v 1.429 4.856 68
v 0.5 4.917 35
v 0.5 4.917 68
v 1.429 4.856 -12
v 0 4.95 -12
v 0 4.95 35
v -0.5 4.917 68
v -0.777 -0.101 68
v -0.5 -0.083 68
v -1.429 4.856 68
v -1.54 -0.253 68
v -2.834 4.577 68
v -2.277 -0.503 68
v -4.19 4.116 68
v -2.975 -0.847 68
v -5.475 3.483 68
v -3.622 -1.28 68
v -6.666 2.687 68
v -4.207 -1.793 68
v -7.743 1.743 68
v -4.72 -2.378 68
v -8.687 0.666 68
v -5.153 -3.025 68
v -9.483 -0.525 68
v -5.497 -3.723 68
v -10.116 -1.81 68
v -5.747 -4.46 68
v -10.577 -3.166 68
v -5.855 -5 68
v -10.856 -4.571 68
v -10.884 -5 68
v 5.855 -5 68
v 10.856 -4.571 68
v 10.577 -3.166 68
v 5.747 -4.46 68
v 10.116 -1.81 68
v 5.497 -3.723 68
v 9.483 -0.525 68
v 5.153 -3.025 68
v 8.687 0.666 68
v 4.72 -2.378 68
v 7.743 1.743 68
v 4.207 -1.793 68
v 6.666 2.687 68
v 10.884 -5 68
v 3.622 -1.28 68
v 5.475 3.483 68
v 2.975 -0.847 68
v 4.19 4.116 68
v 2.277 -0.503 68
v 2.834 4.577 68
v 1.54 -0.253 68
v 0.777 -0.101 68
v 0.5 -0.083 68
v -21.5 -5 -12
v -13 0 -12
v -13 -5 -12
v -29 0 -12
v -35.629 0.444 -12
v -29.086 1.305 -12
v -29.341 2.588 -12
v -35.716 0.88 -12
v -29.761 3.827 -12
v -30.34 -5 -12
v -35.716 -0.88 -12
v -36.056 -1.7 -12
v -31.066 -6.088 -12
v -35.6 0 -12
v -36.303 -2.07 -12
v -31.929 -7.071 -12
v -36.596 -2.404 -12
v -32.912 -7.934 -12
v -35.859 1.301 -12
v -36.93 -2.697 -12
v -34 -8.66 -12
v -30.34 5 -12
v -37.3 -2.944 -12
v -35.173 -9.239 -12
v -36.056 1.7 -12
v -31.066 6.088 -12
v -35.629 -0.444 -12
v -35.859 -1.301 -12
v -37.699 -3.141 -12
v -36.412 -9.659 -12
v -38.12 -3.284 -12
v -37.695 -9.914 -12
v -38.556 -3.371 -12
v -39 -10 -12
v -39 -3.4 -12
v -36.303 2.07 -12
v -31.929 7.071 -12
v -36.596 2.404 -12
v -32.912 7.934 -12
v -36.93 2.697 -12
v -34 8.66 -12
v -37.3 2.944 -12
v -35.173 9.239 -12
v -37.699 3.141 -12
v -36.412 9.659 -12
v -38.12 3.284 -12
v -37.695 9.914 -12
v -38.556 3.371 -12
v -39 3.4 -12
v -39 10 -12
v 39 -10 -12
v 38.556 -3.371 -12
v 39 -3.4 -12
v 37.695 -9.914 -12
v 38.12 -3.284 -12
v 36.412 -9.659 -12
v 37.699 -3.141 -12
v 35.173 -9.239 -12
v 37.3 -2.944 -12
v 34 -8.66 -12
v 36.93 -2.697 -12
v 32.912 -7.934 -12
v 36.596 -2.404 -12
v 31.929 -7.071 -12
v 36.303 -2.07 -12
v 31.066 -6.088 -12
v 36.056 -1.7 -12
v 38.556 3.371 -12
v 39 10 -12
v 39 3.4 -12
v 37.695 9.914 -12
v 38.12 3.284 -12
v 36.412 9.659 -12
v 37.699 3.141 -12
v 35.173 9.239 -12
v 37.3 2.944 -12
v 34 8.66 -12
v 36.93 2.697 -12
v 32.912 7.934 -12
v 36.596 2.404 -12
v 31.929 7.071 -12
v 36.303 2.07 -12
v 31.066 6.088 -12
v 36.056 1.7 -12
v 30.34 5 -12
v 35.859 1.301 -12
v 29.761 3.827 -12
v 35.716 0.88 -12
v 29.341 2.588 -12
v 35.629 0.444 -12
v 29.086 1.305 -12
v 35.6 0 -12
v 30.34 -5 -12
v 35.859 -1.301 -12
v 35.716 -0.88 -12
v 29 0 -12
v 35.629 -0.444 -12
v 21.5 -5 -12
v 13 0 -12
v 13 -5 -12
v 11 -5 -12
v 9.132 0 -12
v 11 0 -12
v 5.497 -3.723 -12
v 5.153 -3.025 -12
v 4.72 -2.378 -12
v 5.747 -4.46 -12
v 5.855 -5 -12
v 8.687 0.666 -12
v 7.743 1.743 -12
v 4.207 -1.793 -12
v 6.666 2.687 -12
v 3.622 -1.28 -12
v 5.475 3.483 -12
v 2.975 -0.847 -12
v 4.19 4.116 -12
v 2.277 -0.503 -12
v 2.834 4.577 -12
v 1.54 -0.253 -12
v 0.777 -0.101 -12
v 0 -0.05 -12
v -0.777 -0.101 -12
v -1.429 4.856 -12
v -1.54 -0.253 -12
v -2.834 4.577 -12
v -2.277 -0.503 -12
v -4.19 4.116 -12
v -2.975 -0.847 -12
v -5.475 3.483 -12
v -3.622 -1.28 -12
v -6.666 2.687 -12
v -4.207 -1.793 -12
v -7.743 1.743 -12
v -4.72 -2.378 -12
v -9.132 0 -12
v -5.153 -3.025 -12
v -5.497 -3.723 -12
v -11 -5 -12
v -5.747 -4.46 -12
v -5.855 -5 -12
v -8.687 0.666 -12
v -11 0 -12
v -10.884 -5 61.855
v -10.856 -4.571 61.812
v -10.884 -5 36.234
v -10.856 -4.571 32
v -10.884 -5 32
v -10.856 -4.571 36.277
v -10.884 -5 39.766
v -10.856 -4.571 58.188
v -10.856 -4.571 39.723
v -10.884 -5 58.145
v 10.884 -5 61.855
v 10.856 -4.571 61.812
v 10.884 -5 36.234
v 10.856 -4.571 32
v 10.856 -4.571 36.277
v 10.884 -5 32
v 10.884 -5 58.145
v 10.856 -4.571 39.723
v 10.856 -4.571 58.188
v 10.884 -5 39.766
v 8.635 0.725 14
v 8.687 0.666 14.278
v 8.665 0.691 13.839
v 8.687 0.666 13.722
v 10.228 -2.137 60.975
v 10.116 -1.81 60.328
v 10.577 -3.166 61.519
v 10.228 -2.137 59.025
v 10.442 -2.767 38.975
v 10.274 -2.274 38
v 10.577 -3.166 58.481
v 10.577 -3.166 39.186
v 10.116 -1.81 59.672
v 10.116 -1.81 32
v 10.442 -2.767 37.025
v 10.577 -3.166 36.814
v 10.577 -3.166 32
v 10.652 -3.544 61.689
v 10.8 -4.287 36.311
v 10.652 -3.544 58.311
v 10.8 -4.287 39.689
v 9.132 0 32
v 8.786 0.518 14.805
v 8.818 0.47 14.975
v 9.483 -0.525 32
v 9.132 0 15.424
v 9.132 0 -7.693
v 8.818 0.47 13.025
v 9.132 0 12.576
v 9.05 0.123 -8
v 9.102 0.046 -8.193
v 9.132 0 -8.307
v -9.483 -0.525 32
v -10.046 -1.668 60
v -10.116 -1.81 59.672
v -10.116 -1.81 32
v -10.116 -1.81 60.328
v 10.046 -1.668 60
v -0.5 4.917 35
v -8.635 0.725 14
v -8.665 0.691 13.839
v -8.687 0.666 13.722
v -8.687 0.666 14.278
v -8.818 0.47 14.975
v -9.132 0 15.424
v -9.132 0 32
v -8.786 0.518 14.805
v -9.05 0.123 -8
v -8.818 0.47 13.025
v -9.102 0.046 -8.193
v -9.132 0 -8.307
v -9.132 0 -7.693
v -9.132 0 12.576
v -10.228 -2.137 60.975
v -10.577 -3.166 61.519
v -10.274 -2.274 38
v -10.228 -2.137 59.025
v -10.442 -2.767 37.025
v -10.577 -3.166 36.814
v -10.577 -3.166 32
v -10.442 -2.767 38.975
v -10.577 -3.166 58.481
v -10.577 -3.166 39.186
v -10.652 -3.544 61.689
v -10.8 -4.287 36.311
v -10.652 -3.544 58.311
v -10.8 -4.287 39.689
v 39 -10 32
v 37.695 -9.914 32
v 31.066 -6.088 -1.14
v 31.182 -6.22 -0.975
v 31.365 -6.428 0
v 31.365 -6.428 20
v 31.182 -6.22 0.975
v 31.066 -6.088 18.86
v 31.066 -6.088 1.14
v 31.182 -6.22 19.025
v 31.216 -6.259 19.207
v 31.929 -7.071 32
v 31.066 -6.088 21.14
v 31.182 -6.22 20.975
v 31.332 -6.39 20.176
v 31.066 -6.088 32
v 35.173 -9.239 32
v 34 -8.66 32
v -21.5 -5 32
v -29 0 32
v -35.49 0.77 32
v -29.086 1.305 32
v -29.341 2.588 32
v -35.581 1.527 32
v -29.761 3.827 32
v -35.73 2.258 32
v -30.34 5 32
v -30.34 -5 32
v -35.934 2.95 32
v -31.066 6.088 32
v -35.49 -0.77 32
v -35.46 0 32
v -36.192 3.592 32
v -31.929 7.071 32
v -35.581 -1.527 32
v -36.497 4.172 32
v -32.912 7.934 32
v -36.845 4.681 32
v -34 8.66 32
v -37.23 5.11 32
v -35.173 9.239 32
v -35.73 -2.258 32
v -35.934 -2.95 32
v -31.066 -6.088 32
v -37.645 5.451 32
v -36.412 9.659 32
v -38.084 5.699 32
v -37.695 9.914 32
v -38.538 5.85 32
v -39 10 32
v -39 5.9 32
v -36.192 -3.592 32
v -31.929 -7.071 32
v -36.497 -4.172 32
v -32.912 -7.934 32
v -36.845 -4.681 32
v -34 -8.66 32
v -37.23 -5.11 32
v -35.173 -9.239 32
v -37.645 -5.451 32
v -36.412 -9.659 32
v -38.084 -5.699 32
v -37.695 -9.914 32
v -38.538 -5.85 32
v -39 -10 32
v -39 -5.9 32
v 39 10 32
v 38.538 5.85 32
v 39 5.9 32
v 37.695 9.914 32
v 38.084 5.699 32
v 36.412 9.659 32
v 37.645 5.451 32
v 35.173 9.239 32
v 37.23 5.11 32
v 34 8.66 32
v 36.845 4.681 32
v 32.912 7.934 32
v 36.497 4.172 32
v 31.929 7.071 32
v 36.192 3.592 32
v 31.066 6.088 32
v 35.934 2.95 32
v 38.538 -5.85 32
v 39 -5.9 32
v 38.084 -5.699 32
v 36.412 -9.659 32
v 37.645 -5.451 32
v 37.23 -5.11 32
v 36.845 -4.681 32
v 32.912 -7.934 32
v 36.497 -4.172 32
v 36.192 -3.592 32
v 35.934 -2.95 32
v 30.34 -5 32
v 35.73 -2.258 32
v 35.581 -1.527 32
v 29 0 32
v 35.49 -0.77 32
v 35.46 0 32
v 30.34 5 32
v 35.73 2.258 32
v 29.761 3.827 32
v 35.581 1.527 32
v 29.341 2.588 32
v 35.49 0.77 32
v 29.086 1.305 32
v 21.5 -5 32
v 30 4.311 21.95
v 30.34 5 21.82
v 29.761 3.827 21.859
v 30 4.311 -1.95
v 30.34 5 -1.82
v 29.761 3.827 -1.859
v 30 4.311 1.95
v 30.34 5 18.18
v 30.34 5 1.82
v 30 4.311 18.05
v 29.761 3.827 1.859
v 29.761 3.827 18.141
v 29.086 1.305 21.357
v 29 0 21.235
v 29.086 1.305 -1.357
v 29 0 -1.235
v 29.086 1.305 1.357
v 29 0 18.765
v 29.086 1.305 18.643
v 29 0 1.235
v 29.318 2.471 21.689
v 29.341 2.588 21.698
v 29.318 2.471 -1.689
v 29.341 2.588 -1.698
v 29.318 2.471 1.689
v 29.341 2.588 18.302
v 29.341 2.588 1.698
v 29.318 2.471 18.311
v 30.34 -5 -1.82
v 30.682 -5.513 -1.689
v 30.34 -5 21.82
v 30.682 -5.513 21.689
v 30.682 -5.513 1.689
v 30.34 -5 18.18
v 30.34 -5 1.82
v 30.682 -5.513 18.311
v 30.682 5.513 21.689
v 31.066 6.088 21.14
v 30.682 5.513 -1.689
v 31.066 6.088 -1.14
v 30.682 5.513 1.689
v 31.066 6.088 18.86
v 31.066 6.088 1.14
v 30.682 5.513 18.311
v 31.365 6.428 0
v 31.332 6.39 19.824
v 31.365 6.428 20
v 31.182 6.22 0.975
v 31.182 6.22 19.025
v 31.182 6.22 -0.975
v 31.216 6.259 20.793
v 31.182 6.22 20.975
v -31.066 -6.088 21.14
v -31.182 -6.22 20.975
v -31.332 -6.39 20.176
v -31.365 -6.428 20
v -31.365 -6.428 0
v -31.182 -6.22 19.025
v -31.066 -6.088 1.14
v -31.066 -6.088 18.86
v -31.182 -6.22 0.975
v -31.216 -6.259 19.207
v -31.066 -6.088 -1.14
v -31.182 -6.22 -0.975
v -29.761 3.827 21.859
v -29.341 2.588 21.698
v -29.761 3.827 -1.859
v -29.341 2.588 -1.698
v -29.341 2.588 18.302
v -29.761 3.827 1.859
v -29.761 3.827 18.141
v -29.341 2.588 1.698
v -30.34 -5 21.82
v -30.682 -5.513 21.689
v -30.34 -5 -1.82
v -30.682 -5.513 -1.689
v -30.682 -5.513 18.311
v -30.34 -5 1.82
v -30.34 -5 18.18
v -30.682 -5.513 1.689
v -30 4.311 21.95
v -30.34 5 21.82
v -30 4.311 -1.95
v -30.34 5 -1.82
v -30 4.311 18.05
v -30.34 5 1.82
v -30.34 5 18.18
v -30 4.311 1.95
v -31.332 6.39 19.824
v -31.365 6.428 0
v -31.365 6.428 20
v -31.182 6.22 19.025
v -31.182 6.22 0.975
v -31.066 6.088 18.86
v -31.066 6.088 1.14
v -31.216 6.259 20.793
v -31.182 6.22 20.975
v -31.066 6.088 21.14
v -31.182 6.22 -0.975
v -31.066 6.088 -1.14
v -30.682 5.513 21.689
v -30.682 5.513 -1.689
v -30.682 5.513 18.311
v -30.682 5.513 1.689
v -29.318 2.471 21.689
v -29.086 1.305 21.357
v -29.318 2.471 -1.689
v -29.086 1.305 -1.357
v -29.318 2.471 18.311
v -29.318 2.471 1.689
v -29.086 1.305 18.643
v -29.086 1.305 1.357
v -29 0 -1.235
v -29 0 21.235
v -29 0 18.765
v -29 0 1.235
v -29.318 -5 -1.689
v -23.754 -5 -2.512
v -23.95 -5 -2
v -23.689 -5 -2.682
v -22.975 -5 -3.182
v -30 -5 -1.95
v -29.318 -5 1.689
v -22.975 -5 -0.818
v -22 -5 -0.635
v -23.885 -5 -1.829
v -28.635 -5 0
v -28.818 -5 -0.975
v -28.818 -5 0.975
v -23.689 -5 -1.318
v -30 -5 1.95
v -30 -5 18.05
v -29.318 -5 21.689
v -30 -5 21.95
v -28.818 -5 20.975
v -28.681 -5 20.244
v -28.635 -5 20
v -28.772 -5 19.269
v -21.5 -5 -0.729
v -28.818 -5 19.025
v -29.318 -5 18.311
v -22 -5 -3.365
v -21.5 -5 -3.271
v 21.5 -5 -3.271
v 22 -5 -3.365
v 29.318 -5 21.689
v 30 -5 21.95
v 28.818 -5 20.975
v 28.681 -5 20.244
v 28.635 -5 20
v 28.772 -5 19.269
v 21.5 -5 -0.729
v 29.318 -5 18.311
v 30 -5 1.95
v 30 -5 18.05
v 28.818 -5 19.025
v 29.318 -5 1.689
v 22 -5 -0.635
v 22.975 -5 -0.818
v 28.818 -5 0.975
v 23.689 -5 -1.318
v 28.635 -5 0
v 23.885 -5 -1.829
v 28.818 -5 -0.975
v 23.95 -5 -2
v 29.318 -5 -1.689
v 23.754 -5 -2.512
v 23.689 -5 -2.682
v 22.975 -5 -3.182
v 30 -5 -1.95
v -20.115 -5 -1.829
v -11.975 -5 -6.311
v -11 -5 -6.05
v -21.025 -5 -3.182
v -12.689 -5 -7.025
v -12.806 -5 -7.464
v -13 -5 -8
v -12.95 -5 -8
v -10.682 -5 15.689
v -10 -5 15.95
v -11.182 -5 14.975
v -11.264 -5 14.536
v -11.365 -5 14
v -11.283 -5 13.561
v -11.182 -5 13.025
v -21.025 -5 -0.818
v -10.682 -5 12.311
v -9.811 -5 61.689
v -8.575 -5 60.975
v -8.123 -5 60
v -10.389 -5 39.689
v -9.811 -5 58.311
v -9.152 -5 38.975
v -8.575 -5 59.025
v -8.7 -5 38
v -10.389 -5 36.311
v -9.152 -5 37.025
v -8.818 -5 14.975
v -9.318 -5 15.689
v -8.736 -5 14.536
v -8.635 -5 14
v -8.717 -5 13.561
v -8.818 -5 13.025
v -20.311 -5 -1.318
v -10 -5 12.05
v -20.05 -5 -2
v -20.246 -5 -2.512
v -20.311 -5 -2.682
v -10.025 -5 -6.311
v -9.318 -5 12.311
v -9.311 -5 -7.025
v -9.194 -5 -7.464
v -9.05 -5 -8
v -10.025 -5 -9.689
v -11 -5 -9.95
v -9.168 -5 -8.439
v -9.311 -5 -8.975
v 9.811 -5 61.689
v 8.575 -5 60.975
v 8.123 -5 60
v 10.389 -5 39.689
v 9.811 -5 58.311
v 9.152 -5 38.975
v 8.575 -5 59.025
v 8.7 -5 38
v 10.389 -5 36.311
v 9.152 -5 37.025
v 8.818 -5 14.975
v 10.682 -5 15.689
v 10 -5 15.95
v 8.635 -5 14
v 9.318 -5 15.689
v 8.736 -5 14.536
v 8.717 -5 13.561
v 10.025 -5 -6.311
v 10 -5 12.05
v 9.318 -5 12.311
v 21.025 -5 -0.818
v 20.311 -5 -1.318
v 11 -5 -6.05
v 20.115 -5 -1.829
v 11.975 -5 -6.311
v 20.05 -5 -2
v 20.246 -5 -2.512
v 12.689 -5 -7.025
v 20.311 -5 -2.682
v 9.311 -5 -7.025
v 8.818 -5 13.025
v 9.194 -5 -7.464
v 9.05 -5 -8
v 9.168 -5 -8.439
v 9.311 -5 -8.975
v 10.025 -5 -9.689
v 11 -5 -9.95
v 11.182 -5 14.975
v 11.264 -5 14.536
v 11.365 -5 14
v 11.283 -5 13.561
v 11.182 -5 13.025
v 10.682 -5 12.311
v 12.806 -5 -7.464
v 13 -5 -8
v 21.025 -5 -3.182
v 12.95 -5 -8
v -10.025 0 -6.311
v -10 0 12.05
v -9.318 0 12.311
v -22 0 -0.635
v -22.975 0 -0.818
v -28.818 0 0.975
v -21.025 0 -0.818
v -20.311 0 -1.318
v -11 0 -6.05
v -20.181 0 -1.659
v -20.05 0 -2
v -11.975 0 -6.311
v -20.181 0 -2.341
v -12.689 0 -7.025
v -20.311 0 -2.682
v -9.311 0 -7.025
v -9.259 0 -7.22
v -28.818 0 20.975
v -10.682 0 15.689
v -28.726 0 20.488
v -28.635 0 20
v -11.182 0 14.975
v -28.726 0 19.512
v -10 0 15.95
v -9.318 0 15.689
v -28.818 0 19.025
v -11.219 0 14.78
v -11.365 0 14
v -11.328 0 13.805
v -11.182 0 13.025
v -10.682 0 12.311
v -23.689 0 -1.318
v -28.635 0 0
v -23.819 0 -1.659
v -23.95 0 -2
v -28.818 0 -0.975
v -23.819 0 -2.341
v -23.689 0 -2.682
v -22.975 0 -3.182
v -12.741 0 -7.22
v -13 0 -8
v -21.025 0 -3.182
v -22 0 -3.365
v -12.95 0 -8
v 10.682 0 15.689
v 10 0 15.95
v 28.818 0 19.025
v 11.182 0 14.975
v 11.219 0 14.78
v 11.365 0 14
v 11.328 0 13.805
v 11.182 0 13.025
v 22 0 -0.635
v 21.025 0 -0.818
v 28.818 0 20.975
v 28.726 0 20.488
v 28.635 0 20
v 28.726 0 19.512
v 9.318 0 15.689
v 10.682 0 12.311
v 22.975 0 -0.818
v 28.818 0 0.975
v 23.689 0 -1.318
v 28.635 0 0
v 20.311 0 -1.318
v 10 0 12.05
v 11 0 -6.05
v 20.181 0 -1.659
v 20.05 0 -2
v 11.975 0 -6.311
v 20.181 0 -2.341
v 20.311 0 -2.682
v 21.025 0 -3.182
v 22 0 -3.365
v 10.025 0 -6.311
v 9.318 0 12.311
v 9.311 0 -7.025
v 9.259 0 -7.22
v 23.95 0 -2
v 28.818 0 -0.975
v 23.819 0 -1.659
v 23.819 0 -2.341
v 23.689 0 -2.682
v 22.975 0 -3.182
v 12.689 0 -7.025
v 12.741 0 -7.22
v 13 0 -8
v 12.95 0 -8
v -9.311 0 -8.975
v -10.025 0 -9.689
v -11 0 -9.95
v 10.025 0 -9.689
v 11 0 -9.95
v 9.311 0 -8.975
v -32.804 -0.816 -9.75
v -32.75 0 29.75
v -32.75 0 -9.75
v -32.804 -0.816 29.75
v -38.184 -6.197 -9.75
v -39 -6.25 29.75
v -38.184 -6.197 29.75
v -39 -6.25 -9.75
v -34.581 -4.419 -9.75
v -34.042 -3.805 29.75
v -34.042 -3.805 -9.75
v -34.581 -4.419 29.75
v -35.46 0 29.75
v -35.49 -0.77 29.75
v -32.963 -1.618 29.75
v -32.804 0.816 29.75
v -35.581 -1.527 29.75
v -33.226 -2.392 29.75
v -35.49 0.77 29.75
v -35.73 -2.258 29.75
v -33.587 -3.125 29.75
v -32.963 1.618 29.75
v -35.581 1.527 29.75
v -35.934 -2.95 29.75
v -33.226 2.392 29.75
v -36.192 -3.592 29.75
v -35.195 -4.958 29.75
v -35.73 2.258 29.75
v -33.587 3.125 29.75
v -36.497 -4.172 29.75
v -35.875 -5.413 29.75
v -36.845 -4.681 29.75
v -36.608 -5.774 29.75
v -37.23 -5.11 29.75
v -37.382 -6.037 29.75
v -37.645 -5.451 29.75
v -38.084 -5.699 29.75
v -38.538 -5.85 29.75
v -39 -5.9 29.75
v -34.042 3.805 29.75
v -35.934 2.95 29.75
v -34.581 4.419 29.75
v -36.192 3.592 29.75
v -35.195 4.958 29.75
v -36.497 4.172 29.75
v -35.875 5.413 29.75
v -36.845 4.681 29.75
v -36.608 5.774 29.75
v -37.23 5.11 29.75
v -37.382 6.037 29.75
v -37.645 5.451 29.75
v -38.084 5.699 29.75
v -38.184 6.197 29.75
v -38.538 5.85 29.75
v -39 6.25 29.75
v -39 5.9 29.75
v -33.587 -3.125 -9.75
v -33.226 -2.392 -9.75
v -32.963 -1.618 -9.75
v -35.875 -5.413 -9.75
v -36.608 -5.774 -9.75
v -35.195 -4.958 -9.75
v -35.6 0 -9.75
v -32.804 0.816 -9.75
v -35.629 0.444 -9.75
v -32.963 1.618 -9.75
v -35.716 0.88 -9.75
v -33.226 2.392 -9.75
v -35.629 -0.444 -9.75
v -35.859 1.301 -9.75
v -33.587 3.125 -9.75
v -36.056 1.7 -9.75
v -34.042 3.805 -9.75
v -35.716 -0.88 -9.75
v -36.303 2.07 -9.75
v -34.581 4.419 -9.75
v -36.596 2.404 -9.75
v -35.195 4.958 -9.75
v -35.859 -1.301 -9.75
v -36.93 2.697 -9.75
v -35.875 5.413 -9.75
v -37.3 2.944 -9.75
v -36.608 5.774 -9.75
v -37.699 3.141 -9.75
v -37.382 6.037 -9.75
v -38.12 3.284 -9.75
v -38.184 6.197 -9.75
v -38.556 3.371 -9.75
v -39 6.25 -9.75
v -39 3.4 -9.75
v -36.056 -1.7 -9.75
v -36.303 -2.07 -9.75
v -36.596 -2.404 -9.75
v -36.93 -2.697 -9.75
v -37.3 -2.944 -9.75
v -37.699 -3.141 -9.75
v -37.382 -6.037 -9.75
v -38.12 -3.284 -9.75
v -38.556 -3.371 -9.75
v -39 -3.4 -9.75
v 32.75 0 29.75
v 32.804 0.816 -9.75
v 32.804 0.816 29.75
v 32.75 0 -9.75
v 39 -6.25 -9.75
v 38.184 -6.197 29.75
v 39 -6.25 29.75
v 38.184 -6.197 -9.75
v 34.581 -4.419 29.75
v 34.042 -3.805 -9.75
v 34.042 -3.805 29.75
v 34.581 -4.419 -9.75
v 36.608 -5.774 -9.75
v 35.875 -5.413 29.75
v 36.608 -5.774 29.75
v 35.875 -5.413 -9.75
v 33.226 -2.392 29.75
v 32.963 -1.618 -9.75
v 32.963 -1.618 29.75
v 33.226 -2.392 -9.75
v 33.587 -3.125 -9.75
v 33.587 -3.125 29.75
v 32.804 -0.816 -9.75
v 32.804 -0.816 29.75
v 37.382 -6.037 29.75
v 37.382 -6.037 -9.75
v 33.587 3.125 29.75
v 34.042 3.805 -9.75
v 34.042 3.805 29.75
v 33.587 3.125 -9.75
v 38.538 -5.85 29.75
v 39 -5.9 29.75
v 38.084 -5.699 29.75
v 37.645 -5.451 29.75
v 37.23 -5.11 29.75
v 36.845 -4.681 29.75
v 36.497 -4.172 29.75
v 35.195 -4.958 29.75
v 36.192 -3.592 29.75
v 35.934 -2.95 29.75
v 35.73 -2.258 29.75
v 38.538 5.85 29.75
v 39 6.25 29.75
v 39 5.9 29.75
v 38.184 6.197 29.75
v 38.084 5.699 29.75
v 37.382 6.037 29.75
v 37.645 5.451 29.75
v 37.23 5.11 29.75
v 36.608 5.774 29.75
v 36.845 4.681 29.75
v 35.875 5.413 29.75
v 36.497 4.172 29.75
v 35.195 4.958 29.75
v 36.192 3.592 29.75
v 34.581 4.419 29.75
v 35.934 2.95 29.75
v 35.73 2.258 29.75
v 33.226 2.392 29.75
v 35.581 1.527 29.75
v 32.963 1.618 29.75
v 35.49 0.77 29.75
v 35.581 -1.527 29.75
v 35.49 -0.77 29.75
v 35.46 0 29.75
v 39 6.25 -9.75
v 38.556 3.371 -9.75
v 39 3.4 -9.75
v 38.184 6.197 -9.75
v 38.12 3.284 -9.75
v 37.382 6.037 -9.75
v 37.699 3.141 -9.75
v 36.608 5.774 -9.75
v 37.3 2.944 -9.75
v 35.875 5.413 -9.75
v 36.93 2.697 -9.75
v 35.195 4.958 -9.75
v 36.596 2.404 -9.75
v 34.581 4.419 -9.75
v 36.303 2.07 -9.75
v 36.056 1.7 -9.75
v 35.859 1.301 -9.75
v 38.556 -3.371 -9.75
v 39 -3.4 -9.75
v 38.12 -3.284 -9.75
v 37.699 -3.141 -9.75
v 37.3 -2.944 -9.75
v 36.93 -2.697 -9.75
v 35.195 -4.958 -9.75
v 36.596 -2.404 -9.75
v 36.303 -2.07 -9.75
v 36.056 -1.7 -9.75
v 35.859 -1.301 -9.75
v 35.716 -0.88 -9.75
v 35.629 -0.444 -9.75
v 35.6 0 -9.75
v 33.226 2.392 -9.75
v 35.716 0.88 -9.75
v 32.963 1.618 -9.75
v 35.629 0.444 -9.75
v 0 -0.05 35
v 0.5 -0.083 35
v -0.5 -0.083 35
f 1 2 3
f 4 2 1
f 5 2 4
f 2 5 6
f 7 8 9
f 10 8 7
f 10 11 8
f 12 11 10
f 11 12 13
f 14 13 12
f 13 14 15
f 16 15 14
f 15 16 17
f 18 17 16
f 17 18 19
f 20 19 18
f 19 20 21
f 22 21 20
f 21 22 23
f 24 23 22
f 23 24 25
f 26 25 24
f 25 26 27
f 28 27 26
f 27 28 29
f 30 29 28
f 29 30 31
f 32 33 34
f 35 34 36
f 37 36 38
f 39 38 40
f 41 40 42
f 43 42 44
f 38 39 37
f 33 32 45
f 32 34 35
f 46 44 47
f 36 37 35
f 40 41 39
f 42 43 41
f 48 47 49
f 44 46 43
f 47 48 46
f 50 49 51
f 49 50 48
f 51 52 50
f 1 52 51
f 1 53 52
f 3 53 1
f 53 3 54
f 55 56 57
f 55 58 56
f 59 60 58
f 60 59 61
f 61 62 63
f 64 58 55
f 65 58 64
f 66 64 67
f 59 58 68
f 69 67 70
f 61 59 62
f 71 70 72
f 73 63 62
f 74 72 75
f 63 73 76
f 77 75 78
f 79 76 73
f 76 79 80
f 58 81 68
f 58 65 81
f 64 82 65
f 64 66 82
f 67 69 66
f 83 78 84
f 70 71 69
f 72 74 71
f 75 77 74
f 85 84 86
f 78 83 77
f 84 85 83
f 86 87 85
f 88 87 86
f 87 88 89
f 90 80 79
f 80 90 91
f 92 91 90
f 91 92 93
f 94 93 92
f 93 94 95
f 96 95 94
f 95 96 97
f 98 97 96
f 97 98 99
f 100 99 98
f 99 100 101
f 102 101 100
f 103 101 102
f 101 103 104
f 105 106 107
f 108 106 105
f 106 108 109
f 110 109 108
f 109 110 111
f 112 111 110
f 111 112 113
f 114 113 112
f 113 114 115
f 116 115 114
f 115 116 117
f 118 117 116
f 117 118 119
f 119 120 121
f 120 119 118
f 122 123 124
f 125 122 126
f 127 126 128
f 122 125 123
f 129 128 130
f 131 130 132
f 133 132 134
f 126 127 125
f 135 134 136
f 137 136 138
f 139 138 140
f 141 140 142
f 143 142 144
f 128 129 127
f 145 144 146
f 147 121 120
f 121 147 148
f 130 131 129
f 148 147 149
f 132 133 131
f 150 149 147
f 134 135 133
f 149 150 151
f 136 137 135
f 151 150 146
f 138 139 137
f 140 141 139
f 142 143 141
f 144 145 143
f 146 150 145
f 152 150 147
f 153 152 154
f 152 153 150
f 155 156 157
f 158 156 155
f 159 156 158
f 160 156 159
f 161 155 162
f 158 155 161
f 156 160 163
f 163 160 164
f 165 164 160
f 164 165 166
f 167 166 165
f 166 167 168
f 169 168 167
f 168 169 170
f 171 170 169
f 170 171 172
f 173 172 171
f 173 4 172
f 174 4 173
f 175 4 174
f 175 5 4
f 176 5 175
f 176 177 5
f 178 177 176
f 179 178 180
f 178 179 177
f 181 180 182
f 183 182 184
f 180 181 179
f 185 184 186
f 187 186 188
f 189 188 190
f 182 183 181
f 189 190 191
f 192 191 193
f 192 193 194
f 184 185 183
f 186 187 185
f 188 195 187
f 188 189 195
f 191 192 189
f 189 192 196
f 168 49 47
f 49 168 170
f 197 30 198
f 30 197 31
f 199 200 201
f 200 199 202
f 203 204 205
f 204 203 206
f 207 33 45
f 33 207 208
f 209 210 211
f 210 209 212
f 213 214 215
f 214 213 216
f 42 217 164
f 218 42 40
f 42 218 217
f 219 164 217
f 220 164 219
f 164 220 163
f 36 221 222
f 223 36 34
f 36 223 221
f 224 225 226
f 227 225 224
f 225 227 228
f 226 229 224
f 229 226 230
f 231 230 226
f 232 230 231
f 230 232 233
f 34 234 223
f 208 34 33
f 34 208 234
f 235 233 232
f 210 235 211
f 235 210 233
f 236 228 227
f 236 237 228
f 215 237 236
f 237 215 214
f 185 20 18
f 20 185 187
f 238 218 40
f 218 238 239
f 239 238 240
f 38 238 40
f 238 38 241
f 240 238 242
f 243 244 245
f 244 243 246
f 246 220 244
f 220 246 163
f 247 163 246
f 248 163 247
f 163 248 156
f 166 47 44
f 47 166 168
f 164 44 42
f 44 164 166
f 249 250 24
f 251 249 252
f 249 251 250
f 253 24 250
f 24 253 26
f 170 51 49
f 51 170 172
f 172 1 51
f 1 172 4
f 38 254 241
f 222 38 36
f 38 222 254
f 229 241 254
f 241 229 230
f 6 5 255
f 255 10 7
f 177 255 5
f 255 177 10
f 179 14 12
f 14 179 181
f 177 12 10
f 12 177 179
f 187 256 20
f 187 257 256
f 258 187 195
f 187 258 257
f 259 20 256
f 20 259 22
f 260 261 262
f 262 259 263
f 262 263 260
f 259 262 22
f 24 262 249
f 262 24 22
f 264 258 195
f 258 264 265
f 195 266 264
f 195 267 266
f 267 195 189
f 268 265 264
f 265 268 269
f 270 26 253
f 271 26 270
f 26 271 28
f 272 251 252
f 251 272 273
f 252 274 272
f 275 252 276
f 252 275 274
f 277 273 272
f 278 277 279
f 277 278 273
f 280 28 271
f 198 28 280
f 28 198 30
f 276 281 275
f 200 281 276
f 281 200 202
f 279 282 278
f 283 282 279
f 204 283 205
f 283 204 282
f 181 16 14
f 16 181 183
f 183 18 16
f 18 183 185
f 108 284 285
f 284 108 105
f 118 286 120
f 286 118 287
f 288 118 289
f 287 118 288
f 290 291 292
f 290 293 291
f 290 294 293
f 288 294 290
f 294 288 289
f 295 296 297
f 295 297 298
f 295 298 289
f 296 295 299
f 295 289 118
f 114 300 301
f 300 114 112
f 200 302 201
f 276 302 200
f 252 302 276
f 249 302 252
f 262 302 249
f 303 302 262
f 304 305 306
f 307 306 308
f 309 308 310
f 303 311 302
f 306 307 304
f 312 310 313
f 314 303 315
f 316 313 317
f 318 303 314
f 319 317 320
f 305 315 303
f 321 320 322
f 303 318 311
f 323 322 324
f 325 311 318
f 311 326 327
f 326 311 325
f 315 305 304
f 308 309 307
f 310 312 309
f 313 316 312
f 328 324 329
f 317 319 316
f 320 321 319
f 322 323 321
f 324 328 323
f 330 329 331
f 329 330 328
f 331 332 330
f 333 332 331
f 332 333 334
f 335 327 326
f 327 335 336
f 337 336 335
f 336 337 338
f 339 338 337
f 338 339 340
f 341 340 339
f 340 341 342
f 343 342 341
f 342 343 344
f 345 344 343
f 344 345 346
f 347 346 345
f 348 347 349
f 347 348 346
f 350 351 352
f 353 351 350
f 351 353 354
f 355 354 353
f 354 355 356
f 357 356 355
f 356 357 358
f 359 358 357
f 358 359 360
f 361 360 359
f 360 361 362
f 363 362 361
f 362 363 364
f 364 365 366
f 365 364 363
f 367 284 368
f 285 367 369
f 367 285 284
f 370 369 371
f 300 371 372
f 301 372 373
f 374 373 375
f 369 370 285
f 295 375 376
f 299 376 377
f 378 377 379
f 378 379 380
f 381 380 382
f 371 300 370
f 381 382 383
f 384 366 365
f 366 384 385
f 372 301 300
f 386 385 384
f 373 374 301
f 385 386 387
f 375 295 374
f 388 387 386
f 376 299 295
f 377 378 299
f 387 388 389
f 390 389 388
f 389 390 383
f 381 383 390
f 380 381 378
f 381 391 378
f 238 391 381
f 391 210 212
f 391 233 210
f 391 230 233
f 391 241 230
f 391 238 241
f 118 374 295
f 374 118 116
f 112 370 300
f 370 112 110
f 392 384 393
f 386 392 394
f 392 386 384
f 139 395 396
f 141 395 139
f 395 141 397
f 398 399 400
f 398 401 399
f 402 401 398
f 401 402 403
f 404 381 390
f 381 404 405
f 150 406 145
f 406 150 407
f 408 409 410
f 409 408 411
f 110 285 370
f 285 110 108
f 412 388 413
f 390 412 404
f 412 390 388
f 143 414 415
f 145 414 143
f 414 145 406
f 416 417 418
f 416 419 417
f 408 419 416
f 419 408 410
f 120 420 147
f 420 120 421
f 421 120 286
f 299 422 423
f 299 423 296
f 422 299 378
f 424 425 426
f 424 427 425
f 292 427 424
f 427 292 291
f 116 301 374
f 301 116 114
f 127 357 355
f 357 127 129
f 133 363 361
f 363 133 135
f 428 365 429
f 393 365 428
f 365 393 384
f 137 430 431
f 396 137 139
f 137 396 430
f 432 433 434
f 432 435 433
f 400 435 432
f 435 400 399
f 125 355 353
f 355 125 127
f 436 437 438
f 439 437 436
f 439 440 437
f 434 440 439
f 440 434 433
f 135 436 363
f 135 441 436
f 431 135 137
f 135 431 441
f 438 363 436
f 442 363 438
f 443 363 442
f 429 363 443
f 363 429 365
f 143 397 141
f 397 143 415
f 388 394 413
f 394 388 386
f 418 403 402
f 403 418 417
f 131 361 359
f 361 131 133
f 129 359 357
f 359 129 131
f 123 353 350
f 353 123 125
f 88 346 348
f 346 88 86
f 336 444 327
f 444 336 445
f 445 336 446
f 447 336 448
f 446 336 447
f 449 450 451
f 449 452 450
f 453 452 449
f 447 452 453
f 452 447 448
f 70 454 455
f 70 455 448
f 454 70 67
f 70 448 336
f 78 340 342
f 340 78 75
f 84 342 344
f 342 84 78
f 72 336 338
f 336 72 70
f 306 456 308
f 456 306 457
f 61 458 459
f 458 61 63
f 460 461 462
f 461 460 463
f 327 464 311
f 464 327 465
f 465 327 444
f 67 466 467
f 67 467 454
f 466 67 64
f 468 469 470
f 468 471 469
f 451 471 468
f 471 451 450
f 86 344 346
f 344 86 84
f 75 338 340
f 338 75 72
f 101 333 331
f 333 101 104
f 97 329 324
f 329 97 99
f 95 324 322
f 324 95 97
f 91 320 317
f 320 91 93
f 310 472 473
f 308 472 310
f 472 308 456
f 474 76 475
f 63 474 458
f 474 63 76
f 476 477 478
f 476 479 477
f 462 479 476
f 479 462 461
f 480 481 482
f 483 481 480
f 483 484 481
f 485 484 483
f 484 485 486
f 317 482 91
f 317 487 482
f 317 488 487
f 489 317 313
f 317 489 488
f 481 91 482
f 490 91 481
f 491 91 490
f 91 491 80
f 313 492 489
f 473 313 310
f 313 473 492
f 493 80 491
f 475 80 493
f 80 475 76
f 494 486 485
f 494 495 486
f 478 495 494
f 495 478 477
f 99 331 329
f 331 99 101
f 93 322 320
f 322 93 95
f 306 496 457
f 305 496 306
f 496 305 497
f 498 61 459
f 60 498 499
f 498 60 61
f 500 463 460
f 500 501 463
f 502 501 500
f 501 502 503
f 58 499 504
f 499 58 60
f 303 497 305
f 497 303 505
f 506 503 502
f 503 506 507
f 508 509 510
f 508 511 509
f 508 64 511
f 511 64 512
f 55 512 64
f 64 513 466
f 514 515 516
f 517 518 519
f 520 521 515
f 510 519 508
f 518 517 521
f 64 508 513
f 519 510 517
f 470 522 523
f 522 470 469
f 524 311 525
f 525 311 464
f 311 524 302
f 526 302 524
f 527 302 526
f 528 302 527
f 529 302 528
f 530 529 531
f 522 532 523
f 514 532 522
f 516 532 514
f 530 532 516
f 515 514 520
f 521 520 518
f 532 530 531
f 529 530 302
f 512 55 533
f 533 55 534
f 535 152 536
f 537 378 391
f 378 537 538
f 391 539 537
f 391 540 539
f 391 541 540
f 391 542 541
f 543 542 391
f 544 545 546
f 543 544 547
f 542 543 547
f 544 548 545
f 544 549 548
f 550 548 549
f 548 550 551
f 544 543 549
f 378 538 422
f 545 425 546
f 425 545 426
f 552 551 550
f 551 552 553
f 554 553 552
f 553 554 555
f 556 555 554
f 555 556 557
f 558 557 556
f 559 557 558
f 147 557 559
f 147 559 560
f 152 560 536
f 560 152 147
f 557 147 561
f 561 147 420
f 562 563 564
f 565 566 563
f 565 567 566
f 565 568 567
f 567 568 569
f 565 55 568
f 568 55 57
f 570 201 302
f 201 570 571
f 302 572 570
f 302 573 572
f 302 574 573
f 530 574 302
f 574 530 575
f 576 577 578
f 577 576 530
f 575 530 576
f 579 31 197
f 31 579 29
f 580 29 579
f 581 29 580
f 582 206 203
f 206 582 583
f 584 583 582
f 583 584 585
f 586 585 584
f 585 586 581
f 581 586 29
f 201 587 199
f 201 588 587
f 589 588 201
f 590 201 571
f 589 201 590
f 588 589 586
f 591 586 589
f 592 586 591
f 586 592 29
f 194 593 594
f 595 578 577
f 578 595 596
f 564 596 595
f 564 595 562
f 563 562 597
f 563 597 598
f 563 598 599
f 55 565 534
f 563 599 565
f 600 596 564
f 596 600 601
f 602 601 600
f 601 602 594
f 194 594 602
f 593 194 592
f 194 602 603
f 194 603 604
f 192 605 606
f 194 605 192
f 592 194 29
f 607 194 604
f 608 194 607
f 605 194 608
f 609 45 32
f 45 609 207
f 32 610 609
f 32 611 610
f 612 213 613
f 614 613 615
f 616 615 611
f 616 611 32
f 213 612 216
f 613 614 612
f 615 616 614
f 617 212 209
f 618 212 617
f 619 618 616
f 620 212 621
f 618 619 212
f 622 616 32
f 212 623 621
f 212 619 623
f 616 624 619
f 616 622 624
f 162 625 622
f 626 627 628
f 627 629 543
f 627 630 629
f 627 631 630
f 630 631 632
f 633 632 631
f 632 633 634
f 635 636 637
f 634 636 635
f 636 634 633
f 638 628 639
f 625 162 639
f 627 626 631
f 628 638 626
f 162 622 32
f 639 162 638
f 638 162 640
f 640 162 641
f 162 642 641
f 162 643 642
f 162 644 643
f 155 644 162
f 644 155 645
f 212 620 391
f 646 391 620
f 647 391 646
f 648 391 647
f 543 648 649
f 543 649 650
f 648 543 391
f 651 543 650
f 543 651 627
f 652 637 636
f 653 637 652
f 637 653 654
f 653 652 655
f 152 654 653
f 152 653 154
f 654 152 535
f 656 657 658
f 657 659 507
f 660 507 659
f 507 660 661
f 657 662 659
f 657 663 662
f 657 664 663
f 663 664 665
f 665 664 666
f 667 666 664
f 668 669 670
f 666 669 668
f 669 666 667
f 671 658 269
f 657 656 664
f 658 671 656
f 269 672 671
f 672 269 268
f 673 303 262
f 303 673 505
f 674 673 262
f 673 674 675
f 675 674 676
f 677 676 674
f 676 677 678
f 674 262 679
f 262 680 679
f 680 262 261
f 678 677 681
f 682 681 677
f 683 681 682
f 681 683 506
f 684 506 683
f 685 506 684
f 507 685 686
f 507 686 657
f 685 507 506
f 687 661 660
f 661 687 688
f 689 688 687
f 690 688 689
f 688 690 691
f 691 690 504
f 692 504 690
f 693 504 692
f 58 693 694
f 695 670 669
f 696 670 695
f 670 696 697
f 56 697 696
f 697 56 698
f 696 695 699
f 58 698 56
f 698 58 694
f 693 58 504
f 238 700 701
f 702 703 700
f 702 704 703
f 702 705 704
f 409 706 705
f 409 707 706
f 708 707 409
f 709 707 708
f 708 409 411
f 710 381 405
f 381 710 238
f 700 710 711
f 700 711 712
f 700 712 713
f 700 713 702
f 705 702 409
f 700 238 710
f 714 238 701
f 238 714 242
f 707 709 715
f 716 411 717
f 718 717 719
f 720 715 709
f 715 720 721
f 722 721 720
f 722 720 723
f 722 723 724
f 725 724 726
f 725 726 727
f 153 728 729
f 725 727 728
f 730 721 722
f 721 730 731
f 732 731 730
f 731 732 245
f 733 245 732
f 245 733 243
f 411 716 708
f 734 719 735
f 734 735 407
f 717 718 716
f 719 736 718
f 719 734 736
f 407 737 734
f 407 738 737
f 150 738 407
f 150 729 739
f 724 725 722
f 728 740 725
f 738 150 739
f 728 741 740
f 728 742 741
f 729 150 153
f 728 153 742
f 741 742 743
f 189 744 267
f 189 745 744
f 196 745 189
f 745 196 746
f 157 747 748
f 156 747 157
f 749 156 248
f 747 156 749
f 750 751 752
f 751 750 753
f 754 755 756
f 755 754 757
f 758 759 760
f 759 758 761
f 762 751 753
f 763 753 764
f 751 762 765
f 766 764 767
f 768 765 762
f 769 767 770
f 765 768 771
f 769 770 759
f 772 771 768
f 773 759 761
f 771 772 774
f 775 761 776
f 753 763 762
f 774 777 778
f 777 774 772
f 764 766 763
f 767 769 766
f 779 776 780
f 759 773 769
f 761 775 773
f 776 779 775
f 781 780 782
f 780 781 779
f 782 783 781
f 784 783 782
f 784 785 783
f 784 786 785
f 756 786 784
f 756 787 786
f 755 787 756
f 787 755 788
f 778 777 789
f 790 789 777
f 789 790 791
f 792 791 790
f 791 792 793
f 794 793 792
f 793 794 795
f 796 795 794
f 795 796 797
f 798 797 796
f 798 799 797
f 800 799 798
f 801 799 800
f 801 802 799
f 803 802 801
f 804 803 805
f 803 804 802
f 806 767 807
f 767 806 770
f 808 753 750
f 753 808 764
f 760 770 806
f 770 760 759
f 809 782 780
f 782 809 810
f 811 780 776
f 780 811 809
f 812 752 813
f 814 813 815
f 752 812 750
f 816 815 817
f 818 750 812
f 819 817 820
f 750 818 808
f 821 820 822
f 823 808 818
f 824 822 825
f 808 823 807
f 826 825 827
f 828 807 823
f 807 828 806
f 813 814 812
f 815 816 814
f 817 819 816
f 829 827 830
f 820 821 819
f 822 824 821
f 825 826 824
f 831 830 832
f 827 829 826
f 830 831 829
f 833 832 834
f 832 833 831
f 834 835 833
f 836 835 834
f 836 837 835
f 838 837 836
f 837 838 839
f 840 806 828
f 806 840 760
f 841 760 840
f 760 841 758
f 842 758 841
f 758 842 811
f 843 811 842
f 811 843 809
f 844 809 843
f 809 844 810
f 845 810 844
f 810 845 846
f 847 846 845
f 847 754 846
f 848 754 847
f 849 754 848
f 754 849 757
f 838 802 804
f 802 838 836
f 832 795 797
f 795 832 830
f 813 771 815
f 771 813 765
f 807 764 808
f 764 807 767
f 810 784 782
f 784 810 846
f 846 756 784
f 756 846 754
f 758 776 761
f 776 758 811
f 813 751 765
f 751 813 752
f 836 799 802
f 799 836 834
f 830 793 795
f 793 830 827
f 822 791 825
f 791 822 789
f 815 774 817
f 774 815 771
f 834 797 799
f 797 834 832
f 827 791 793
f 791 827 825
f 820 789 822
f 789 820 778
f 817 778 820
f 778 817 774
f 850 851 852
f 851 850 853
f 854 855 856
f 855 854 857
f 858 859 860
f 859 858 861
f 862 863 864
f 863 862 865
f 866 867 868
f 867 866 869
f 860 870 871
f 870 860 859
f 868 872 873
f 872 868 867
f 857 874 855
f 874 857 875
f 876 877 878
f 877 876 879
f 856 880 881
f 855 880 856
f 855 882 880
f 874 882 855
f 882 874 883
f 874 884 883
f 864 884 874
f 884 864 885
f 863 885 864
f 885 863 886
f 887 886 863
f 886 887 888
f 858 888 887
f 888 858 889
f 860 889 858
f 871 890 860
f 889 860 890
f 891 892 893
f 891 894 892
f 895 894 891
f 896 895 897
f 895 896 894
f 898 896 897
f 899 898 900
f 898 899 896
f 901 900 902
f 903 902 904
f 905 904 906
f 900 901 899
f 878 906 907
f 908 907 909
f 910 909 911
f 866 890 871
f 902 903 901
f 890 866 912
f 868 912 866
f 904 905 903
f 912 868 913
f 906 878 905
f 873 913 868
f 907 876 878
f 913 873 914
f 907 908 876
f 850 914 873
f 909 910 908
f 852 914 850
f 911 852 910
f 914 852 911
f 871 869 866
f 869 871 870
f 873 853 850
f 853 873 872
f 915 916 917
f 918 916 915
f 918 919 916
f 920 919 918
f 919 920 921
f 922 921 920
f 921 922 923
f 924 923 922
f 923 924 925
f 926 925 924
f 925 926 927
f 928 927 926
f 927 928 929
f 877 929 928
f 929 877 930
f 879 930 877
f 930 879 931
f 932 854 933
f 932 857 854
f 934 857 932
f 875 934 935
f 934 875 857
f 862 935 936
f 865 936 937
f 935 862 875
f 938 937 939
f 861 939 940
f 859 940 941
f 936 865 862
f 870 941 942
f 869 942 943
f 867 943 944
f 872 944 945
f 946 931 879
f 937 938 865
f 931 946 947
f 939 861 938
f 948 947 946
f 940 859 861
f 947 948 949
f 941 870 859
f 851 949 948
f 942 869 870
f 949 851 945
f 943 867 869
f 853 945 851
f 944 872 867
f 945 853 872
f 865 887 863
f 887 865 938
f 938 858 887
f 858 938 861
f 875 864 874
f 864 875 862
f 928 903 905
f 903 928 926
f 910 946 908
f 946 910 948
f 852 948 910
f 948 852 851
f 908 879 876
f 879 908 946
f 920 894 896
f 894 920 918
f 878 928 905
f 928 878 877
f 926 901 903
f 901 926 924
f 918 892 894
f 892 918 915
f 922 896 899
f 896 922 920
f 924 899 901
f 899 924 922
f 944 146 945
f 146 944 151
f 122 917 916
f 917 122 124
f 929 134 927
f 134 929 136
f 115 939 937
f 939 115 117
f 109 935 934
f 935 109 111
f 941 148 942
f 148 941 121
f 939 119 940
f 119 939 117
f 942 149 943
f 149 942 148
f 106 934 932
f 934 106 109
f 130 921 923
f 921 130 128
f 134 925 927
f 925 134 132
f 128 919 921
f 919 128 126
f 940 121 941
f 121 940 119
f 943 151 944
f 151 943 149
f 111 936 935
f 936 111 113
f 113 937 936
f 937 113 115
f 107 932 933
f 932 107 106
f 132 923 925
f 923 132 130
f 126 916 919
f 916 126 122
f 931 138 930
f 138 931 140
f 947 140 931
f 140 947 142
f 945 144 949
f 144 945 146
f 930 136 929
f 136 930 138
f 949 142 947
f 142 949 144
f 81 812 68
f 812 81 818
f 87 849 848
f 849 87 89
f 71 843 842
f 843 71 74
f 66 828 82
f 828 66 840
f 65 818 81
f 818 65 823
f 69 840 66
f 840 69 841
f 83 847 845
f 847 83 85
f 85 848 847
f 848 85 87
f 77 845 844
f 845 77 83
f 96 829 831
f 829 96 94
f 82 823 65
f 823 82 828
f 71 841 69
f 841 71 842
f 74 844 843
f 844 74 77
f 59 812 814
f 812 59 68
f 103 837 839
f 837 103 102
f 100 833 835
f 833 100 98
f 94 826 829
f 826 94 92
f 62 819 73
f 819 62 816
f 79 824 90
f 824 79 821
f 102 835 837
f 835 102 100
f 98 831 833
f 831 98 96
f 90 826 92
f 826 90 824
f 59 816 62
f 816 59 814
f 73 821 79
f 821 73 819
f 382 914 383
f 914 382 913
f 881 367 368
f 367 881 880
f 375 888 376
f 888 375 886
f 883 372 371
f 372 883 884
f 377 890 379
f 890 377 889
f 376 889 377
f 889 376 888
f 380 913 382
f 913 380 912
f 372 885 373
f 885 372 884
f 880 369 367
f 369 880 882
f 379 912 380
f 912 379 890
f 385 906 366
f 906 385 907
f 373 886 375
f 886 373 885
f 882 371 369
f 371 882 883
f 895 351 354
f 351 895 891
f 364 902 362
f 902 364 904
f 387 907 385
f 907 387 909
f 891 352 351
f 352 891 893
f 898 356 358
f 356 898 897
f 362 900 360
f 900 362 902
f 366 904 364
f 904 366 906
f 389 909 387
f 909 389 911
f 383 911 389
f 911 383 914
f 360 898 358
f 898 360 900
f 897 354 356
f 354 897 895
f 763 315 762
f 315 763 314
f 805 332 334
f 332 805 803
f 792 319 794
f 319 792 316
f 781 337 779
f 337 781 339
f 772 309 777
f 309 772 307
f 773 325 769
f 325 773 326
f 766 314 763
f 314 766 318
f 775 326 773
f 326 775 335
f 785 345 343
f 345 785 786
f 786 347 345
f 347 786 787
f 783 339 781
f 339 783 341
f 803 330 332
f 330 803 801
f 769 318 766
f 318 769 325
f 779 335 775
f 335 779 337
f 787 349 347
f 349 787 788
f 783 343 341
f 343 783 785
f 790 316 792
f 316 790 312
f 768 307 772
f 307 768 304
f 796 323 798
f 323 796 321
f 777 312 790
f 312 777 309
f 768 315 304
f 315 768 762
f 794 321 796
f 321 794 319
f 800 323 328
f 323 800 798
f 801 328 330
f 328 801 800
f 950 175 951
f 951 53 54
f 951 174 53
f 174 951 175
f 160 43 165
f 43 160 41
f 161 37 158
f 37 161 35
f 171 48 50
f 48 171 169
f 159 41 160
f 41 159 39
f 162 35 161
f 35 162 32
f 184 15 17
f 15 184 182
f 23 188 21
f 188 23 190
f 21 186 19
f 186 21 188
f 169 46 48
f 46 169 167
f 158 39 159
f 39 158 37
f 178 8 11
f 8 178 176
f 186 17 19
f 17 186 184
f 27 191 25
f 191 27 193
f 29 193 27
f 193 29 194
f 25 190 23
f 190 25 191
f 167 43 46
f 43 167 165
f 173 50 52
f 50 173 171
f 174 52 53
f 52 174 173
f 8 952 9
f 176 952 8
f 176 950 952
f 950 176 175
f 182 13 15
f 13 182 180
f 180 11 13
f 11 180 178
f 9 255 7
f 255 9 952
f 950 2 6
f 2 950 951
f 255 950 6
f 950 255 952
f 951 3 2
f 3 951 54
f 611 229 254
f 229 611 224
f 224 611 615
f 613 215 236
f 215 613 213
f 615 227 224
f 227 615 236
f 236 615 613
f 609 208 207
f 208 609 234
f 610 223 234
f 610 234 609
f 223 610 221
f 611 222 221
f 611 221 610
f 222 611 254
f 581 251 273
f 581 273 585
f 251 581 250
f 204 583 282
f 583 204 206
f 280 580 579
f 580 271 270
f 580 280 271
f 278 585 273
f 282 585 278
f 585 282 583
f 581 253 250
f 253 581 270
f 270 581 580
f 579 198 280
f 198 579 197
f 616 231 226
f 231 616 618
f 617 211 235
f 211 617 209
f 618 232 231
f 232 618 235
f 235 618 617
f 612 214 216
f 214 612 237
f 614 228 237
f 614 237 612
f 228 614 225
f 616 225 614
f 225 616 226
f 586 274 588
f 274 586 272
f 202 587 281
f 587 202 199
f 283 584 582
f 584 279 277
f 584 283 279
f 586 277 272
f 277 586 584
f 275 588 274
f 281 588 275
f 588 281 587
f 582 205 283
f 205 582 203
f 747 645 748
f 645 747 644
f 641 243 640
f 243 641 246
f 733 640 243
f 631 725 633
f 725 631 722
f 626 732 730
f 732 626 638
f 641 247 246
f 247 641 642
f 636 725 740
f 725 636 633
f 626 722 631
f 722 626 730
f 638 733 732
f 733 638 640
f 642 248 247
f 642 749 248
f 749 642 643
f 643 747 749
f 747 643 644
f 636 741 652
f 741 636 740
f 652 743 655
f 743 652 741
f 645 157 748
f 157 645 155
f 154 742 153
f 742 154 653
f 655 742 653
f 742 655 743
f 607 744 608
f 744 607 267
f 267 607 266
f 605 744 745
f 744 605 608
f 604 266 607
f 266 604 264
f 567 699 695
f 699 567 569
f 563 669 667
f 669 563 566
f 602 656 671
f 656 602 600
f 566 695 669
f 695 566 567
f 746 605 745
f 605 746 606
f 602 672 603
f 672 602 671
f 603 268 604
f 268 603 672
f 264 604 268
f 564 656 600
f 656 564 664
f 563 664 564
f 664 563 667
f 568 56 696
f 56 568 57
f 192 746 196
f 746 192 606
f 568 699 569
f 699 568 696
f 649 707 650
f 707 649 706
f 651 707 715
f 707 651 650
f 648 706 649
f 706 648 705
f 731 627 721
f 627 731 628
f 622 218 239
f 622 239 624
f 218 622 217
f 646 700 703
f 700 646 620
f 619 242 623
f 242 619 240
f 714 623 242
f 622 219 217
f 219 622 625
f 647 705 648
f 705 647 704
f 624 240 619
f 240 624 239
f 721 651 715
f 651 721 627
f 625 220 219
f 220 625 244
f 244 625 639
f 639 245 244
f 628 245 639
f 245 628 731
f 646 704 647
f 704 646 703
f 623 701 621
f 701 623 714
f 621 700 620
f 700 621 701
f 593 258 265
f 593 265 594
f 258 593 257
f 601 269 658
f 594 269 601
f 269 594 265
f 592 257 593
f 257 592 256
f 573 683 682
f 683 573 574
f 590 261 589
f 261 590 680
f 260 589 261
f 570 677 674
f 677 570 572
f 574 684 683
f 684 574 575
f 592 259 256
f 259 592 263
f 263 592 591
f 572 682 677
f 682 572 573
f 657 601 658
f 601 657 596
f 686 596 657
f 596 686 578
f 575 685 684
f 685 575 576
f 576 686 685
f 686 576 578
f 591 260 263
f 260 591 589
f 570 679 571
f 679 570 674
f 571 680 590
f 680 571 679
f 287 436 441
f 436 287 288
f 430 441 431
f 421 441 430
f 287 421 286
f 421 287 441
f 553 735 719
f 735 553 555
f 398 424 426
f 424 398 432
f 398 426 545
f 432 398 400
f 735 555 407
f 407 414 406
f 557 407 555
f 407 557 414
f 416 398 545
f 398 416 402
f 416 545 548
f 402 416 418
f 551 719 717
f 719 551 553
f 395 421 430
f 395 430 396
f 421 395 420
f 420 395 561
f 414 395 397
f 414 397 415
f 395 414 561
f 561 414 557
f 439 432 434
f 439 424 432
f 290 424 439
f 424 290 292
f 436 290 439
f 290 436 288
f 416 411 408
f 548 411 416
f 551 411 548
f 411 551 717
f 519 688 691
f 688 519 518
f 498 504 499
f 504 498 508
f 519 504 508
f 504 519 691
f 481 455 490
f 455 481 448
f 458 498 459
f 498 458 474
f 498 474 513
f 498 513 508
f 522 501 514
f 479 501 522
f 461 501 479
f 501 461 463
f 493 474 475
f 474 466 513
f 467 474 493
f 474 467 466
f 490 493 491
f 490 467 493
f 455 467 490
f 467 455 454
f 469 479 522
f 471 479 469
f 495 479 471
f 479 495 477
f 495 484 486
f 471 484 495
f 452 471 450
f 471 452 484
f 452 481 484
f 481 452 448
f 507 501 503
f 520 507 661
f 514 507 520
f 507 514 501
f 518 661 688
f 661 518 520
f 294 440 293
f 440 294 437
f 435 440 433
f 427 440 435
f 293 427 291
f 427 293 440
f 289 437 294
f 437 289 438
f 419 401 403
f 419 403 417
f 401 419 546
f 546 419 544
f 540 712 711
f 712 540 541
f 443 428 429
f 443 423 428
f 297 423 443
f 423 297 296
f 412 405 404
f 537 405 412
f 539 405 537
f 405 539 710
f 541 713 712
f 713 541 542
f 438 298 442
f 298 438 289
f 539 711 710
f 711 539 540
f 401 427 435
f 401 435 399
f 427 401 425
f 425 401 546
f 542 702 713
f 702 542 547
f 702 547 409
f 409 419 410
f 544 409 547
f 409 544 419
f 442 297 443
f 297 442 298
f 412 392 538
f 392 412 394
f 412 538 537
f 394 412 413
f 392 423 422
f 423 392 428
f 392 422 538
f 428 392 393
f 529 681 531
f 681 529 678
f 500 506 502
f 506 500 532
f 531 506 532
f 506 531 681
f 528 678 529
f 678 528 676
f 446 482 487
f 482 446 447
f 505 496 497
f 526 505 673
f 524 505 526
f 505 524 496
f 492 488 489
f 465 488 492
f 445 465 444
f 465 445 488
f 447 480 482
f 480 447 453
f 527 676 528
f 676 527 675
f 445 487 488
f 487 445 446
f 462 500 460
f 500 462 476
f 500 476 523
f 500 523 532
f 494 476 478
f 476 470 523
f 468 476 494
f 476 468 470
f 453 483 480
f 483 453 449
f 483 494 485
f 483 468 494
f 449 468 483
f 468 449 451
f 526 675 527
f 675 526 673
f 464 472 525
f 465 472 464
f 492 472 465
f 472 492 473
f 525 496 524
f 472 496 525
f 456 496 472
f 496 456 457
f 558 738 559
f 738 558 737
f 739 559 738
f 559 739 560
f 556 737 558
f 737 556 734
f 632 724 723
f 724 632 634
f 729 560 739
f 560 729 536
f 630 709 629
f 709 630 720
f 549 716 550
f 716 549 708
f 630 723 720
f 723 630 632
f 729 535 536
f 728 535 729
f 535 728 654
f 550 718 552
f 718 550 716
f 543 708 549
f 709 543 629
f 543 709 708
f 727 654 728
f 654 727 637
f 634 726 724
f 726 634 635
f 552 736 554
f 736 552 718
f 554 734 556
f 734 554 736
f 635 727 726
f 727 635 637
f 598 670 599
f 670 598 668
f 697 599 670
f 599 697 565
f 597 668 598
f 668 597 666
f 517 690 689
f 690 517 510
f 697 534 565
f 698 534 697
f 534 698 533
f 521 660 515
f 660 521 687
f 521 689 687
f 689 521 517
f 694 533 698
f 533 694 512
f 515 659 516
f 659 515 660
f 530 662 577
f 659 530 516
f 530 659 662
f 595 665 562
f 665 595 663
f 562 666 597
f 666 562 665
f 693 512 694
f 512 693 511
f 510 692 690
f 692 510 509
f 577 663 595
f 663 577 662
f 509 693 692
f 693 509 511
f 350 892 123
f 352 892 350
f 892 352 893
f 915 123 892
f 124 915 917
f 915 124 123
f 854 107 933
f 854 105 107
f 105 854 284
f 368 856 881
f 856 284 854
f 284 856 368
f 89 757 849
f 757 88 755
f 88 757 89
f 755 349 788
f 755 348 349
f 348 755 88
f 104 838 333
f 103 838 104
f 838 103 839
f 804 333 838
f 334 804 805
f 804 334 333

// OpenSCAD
// This holder is intended for use without cover for pen or cutter.
// Tie pen

   DiaM3=3.6; // fix  with M3
   DiaM4 = 4.5; // Z switch activation
   DiaM6=6.8; // M6 shaft 
   DiaTie=3.9;  // somewhat larger
   DiaPen=11.9;  //11.8
   Height=80;   // 80 60
   LM6Height = 24+20;    // was 24 for one LM6UU   44 for 2



   color("lime")          
         
 rotate([180,0,0])  //180 no need to rotate in Slic3R        
   {        
difference()
{ 
  union()
  {                    
   // Central Pen - Cutter holder
      
     translate([0,6,-28.0])  // -1.5  
       cylinder(h=Height ,d=DiaPen+10 ,center=true,$fn=48);  
      
   // side LM6UU dual holder      
          translate([39,0,-10])
       cylinder(h=LM6Height ,d=20 ,center=true,$fn=48); 
            
          translate([-39,0,-10])
       cylinder(h=LM6Height ,d=20 ,center=true,$fn=48); 
                
 // connect central  part:   
      
        translate([0,2.5,-10])
      cube([76,5,LM6Height],center=true);   
      
                  
  }    
            // END UNION
     
  
 
 //  LM6 holders 
      translate([-39,0,-10])
       cylinder(h=19.5+20 ,d=12.5 ,center=true,$fn=48);  //
           
  //  LM6 holder 
      translate([39,0,-10])
       cylinder(h=19.5 +20,d=12.5 ,center=true,$fn=48);  //
    
  
 // left shaft  
      translate([39,0,-10])
       cylinder(h=25+20 ,d=DiaM6 ,center=true,$fn=48);  //
         
 // right shaft
 
      translate([-39,0,-10])
       cylinder(h=25+20 ,d=DiaM6 ,center=true,$fn=48);  //
       
      // upwards more room for LM6UU shafts: 
  
 // left shaft  
      translate([39,0,-30])
      scale([0.6,1,1])
       cylinder(h=25 ,d=DiaM6+5 ,center=true,$fn=48);  //
    
  // left shaft  
      translate([-39,0,-30])
      scale([0.6,1,1])
       cylinder(h=25 ,d=DiaM6+5 ,center=true,$fn=48);  //
    
//  Central pen holder:

translate([0,6,-25])
       cylinder(h=Height*3 ,d=DiaPen,center=true,$fn=48);  
     
  
// Partial fence makes tying easier:

translate([0,-5,-60]) 
cube([1,20,50],center=true);
       
  
      
  translate([11.5,5,-60])    
  rotate([90,0,30]) 
  scale([1.5,1,1])
  cylinder(h=20 ,d=DiaTie,center=true,$fn=12); 
  
   translate([-11.5,5,-60])     
  rotate([90,0,-30]) 
  scale([1.5,1,1])
  cylinder(h=20 ,d=DiaTie,center=true,$fn=12); 
  
            
  translate([11.5,6,-38])   
  rotate([90,0,30]) 
  scale([1.5,1,1])
  cylinder(h=20 ,d=DiaTie,center=true,$fn=12); 
  
   translate([-11.5,6,-38])     
  rotate([90,0,-30]) 
  scale([1.5,1,1])
  cylinder(h=20 ,d=DiaTie,center=true,$fn=12); 
  
                                     
  translate([11.0,6,-12+20])    
  rotate([90,0,0])  
  cylinder(h=20 ,d=DiaTie,center=true,$fn=12);  
  
   translate([12.0,4,-9+20])    
   cube([2.0,10,6],center=true);
  
   translate([-11.0,6,-12+20])    
  rotate([90,0,0])   
  cylinder(h=20 ,d=DiaTie,center=true,$fn=12);  
   
   translate([-12.0,4,-9+20])    
   cube([2.0,10,6],center=true);
                          
  translate([10.0,6,-14])    
  rotate([90,0,0]) 
  scale([0.7,1,1])
  cylinder(h=20 ,d=DiaTie,center=true,$fn=12);  
  
   translate([-10,6,-14])  
  rotate([90,0,0]) 
  scale([0.7,1,1])
  cylinder(h=20 ,d=DiaTie,center=true,$fn=12);    
    
  
//  fix LM6 with ties 
        
  translate([30.0,0,0])     
  rotate([90,0,0]) 
  scale([0.7,1,1])
  cylinder(h=20 ,d=DiaTie,center=true,$fn=12); 
        
  translate([-30,0,0])      
  rotate([90,0,0]) 
   scale([0.7,1,1])
  cylinder(h=20 ,d=DiaTie,center=true,$fn=12);      
     
//  fix LM6 with ties  
        
  translate([30.0,0,-20])   
  rotate([90,0,0]) 
  scale([0.7,1,1])
  cylinder(h=20 ,d=DiaTie,center=true,$fn=12); 
        
  translate([-30,0,-20])    
  rotate([90,0,0]) 
   scale([0.7,1,1])
  cylinder(h=20 ,d=DiaTie,center=true,$fn=12);       
         
//  fix on pusher:  
        
  translate([22.0,0,2])   
  rotate([90,0,0]) 
  scale([1,0.7,1])
  cylinder(h=20 ,d=DiaTie,center=true,$fn=12);
                    
  translate([-22.0,0,2])  
  rotate([90,0,0]) 
  scale([1,0.7,1])
  cylinder(h=20 ,d=DiaTie,center=true,$fn=12);       
     
  
     
    // lateral removal :
 translate([49,0,-10])
  cube([20,30,30+20],center=true);
  
     translate([-49,0,-10])
  cube([20,30,30+20],center=true);
        
   // removal of front part
  
      translate([0,16,-25])
  cube([43,22,90],center=true);
    
    }
 }  // end rotate
         
         
